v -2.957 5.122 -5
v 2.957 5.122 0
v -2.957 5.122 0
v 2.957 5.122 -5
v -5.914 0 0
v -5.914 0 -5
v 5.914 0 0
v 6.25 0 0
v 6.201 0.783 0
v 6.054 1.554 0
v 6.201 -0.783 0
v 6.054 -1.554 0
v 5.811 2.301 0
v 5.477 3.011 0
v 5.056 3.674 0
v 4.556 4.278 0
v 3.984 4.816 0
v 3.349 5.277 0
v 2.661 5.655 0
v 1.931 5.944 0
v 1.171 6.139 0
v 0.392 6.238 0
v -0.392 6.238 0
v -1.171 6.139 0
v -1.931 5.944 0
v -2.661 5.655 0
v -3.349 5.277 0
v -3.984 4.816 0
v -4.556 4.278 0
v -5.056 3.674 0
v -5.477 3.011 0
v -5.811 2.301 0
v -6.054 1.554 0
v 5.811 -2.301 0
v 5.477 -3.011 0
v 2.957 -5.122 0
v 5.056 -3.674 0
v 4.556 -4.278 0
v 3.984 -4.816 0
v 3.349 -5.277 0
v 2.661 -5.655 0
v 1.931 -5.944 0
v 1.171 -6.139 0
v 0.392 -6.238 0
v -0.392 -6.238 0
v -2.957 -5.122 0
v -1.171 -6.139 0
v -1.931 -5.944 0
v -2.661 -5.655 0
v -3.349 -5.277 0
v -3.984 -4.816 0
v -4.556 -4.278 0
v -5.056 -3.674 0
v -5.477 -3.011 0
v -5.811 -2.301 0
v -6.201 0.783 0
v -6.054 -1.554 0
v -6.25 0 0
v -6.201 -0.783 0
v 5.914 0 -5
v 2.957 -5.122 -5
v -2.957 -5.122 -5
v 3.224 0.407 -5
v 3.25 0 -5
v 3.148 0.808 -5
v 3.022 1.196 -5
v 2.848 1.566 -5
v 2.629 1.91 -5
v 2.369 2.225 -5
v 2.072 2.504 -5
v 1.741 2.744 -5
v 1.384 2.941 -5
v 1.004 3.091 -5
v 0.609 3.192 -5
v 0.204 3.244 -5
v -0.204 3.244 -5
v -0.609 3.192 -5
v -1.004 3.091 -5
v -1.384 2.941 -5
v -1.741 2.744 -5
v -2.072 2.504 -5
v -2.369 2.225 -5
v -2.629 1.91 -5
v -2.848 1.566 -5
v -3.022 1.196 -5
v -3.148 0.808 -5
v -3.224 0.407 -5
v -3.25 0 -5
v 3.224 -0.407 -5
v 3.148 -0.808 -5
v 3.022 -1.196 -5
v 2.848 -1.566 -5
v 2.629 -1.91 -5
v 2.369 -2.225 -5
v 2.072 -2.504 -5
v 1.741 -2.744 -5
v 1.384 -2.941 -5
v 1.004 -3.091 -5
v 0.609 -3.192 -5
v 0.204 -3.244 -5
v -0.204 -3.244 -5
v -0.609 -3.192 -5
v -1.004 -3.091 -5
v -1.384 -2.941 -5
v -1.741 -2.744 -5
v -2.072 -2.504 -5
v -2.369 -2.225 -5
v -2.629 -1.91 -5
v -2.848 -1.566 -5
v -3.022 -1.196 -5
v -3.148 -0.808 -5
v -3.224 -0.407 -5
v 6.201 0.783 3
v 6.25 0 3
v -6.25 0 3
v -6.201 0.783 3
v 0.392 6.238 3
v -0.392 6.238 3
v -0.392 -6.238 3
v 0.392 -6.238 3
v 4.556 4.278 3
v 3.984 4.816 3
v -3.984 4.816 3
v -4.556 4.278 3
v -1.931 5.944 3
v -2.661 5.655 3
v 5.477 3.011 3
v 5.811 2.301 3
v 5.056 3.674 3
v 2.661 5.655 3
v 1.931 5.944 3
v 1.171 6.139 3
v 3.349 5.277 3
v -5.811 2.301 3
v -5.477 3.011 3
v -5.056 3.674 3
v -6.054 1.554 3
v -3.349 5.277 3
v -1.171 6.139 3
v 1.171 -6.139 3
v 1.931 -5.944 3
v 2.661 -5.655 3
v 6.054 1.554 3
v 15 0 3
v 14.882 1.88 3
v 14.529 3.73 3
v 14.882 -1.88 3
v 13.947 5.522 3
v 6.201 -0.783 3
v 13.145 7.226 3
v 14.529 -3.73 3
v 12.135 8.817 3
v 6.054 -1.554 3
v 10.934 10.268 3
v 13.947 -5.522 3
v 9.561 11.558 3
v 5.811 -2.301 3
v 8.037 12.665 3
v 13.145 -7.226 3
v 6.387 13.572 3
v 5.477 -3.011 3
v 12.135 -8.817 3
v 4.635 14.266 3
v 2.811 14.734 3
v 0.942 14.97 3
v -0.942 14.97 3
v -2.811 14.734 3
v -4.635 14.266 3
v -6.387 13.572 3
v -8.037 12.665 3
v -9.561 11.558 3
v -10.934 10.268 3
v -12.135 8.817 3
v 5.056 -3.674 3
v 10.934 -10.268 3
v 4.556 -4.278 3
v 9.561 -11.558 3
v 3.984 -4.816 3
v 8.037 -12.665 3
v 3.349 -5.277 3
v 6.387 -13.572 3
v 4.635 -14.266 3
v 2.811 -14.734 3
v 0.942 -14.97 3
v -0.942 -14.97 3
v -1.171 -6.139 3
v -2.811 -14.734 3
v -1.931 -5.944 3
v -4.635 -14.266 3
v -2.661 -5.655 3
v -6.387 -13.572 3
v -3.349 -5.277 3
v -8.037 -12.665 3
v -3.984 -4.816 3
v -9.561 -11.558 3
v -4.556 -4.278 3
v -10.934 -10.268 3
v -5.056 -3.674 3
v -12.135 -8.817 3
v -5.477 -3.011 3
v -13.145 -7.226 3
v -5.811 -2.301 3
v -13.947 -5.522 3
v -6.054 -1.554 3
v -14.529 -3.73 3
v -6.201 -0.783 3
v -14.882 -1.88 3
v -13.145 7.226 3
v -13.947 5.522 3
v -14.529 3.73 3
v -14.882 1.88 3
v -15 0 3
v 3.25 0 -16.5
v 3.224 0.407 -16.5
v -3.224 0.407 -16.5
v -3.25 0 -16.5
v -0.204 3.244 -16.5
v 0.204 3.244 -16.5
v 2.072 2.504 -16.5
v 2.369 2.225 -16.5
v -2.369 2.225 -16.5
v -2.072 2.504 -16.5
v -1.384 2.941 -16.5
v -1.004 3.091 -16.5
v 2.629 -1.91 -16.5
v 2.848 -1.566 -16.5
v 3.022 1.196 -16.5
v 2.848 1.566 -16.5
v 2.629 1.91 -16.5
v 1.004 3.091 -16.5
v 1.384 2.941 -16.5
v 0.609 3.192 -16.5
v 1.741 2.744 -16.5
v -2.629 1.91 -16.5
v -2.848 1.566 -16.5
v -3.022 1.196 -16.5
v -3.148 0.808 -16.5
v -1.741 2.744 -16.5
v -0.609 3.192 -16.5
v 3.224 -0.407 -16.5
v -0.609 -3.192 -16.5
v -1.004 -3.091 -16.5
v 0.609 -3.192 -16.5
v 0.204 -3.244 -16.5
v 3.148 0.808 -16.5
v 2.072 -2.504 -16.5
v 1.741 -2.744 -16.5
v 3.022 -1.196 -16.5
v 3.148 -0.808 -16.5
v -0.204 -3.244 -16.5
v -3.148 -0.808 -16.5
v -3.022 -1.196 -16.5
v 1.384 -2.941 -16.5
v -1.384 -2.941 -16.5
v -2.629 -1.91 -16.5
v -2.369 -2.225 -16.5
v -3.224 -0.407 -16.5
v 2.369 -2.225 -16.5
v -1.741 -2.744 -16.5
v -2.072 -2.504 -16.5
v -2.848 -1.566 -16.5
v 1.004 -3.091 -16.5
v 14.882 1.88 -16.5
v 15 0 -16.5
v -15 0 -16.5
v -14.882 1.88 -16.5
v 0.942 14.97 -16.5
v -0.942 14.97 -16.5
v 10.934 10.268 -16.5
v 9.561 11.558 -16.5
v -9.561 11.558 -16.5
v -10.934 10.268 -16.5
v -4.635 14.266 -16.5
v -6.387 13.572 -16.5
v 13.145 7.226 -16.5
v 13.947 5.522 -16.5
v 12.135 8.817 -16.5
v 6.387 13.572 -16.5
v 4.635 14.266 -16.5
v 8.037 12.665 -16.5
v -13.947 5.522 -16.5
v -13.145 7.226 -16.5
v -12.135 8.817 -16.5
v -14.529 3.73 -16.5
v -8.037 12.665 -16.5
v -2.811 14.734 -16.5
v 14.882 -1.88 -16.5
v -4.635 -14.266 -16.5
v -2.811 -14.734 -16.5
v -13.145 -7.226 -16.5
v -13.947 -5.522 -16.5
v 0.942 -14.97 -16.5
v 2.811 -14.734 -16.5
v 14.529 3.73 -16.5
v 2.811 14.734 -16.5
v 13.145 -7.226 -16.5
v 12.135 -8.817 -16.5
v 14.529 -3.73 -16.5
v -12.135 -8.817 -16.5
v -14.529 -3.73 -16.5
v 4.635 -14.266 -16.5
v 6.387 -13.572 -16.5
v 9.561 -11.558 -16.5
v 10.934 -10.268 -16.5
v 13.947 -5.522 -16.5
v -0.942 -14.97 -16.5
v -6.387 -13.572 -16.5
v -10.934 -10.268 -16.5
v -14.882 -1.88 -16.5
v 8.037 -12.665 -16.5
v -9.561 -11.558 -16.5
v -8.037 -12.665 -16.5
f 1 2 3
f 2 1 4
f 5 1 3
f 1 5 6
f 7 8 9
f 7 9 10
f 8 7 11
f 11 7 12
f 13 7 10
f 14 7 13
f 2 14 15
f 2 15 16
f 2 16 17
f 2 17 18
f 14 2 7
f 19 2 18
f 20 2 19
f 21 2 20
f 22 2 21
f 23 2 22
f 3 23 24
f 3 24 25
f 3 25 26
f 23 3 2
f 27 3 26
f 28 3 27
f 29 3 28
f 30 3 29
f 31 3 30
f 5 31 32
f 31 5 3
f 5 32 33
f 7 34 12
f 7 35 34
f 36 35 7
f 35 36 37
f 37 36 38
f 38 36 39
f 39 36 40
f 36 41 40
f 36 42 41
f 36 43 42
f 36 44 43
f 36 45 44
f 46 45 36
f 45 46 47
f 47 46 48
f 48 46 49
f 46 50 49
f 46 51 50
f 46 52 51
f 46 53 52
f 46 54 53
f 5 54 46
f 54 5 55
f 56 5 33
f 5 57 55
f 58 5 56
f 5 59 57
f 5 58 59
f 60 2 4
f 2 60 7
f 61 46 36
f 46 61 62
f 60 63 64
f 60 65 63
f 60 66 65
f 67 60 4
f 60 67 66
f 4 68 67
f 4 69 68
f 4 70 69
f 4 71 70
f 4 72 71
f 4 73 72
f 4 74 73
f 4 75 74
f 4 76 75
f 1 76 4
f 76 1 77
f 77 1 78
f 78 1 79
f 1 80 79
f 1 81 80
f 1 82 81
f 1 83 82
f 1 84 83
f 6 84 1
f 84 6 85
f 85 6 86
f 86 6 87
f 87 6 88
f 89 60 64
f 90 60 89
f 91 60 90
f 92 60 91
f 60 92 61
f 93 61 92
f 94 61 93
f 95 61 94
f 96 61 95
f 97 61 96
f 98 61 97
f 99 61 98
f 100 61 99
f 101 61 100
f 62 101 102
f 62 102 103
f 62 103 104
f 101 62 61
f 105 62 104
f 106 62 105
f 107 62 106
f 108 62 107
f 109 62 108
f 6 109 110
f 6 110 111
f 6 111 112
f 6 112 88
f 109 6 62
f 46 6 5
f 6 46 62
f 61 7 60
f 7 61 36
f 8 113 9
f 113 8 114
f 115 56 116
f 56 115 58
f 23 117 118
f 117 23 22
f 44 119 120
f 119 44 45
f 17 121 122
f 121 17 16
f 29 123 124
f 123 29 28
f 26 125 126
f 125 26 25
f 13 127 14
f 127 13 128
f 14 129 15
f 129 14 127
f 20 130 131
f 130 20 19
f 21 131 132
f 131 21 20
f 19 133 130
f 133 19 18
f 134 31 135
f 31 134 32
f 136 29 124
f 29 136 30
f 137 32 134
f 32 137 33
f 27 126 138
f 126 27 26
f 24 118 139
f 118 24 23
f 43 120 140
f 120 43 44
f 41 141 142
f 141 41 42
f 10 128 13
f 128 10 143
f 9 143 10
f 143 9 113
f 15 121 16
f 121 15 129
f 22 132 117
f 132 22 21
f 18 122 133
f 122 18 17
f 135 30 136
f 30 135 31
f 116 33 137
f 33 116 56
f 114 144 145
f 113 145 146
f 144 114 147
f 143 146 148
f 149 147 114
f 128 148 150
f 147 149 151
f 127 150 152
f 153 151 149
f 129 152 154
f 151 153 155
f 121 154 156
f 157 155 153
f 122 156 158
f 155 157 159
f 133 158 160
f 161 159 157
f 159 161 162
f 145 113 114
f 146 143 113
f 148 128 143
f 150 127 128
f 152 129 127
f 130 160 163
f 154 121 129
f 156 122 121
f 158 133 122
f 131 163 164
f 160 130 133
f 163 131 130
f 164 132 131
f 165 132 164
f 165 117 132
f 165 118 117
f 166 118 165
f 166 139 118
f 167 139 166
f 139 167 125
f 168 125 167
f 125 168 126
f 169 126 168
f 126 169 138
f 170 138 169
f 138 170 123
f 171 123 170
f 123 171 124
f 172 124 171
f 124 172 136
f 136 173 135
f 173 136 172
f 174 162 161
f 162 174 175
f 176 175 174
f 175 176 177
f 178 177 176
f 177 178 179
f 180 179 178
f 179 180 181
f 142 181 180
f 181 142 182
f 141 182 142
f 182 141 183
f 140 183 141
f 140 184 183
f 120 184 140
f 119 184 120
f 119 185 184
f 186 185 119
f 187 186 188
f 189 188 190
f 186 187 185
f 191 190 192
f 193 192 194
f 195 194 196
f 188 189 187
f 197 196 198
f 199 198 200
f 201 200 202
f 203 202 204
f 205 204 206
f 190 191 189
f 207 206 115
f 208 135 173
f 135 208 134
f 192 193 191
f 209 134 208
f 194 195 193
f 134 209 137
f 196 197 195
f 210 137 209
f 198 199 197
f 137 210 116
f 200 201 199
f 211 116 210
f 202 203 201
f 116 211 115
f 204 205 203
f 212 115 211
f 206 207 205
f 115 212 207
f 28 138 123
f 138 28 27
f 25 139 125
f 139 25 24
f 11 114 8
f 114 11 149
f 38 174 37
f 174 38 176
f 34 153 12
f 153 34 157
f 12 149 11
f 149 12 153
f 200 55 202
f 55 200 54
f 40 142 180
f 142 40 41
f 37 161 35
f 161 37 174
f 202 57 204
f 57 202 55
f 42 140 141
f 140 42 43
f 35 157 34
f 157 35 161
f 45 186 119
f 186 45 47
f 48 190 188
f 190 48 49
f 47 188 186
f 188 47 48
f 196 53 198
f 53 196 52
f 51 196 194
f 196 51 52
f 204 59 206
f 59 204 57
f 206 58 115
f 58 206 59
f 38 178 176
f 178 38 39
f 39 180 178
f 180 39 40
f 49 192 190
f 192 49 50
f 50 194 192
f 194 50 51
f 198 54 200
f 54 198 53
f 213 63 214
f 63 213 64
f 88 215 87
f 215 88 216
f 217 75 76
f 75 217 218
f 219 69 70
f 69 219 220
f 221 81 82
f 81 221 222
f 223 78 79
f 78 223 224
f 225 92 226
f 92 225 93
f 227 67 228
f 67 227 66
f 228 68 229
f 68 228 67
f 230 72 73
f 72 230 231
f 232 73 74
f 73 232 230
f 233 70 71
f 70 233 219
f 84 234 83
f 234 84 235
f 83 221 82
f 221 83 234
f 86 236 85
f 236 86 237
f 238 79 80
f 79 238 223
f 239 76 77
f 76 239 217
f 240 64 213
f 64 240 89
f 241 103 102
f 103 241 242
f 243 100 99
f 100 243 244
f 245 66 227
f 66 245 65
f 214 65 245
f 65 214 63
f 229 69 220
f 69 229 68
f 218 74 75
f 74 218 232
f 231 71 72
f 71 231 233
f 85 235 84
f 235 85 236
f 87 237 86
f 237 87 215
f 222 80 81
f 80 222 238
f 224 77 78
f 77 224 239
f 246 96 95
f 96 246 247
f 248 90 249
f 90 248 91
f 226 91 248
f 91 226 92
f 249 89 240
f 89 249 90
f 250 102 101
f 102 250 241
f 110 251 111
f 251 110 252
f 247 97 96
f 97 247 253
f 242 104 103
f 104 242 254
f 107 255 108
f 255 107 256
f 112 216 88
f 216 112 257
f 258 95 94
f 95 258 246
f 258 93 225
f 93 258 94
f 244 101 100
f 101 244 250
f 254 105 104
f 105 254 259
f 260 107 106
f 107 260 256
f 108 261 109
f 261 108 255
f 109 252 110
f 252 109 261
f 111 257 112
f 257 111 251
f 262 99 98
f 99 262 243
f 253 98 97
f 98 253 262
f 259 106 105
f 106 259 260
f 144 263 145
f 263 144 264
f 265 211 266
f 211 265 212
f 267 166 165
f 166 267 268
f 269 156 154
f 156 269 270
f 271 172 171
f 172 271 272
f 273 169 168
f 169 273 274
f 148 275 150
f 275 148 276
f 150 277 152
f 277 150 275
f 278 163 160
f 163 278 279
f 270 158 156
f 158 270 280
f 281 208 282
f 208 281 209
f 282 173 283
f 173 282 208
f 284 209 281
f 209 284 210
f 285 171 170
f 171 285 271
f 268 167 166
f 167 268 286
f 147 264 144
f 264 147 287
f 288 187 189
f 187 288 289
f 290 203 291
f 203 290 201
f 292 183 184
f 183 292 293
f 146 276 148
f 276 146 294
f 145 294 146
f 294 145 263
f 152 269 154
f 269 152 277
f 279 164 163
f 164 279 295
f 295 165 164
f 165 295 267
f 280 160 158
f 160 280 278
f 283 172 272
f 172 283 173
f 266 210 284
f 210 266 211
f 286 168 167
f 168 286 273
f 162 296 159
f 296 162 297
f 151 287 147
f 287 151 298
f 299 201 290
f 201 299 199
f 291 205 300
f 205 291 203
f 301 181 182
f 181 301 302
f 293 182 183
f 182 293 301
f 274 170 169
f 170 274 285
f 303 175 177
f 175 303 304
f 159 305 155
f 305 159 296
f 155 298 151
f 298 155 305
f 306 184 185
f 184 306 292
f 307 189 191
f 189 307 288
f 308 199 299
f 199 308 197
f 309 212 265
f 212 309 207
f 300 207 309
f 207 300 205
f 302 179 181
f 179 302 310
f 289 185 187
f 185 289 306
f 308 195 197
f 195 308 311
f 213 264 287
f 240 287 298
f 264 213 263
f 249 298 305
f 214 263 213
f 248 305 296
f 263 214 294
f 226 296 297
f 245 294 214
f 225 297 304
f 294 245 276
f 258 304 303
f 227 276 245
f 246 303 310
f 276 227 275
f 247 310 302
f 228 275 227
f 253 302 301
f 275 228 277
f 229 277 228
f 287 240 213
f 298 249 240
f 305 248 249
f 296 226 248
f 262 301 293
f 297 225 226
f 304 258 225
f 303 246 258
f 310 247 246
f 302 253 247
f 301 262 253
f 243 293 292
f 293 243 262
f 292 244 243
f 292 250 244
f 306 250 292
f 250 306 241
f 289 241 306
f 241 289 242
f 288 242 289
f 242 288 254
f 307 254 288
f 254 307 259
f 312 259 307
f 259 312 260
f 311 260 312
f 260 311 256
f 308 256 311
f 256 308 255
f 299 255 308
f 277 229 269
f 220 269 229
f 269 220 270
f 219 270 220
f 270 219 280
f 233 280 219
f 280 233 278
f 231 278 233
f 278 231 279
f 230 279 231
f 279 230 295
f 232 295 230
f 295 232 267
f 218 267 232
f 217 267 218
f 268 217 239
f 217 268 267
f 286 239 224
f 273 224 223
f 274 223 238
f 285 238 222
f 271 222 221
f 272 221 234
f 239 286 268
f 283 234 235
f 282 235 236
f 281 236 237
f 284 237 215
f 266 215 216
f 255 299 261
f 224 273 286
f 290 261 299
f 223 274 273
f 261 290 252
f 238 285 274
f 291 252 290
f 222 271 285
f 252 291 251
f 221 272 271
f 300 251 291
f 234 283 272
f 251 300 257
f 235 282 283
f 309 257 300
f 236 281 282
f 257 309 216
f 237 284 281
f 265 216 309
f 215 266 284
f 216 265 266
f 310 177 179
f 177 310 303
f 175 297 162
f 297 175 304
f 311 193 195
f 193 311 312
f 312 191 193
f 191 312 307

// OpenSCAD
$fn = 50;


difference() {
	union() {
		translate(v = [0, 0, -16.5000000000]) {
			cylinder(h = 19.5000000000, r = 15.0000000000);
		}
		#translate(v = [0, 0, -18.0000000000]) {
			cylinder(h = 18, r = 2.8750000000);
		}
	}
	union() {
		translate(v = [0, 0, 0]) {
			rotate(a = [0, 0, 0]) {
				difference() {
					union() {
						translate(v = [0, 0, -5]) {
							linear_extrude(height = 5) {
								polygon(points = [[5.9142500000, 0.0000000000], [2.9571250000, 5.1218907443], [-2.9571250000, 5.1218907443], [-5.9142500000, 0.0000000000], [-2.9571250000, -5.1218907443], [2.9571250000, -5.1218907443]]);
							}
						}
					}
					union();
				}
			}
		}
		#cylinder(h = 3, r = 6.2500000000);
		#translate(v = [0, 0, -100.0000000000]) {
			cylinder(h = 200, r = 3.2500000000);
		}
	}
}
